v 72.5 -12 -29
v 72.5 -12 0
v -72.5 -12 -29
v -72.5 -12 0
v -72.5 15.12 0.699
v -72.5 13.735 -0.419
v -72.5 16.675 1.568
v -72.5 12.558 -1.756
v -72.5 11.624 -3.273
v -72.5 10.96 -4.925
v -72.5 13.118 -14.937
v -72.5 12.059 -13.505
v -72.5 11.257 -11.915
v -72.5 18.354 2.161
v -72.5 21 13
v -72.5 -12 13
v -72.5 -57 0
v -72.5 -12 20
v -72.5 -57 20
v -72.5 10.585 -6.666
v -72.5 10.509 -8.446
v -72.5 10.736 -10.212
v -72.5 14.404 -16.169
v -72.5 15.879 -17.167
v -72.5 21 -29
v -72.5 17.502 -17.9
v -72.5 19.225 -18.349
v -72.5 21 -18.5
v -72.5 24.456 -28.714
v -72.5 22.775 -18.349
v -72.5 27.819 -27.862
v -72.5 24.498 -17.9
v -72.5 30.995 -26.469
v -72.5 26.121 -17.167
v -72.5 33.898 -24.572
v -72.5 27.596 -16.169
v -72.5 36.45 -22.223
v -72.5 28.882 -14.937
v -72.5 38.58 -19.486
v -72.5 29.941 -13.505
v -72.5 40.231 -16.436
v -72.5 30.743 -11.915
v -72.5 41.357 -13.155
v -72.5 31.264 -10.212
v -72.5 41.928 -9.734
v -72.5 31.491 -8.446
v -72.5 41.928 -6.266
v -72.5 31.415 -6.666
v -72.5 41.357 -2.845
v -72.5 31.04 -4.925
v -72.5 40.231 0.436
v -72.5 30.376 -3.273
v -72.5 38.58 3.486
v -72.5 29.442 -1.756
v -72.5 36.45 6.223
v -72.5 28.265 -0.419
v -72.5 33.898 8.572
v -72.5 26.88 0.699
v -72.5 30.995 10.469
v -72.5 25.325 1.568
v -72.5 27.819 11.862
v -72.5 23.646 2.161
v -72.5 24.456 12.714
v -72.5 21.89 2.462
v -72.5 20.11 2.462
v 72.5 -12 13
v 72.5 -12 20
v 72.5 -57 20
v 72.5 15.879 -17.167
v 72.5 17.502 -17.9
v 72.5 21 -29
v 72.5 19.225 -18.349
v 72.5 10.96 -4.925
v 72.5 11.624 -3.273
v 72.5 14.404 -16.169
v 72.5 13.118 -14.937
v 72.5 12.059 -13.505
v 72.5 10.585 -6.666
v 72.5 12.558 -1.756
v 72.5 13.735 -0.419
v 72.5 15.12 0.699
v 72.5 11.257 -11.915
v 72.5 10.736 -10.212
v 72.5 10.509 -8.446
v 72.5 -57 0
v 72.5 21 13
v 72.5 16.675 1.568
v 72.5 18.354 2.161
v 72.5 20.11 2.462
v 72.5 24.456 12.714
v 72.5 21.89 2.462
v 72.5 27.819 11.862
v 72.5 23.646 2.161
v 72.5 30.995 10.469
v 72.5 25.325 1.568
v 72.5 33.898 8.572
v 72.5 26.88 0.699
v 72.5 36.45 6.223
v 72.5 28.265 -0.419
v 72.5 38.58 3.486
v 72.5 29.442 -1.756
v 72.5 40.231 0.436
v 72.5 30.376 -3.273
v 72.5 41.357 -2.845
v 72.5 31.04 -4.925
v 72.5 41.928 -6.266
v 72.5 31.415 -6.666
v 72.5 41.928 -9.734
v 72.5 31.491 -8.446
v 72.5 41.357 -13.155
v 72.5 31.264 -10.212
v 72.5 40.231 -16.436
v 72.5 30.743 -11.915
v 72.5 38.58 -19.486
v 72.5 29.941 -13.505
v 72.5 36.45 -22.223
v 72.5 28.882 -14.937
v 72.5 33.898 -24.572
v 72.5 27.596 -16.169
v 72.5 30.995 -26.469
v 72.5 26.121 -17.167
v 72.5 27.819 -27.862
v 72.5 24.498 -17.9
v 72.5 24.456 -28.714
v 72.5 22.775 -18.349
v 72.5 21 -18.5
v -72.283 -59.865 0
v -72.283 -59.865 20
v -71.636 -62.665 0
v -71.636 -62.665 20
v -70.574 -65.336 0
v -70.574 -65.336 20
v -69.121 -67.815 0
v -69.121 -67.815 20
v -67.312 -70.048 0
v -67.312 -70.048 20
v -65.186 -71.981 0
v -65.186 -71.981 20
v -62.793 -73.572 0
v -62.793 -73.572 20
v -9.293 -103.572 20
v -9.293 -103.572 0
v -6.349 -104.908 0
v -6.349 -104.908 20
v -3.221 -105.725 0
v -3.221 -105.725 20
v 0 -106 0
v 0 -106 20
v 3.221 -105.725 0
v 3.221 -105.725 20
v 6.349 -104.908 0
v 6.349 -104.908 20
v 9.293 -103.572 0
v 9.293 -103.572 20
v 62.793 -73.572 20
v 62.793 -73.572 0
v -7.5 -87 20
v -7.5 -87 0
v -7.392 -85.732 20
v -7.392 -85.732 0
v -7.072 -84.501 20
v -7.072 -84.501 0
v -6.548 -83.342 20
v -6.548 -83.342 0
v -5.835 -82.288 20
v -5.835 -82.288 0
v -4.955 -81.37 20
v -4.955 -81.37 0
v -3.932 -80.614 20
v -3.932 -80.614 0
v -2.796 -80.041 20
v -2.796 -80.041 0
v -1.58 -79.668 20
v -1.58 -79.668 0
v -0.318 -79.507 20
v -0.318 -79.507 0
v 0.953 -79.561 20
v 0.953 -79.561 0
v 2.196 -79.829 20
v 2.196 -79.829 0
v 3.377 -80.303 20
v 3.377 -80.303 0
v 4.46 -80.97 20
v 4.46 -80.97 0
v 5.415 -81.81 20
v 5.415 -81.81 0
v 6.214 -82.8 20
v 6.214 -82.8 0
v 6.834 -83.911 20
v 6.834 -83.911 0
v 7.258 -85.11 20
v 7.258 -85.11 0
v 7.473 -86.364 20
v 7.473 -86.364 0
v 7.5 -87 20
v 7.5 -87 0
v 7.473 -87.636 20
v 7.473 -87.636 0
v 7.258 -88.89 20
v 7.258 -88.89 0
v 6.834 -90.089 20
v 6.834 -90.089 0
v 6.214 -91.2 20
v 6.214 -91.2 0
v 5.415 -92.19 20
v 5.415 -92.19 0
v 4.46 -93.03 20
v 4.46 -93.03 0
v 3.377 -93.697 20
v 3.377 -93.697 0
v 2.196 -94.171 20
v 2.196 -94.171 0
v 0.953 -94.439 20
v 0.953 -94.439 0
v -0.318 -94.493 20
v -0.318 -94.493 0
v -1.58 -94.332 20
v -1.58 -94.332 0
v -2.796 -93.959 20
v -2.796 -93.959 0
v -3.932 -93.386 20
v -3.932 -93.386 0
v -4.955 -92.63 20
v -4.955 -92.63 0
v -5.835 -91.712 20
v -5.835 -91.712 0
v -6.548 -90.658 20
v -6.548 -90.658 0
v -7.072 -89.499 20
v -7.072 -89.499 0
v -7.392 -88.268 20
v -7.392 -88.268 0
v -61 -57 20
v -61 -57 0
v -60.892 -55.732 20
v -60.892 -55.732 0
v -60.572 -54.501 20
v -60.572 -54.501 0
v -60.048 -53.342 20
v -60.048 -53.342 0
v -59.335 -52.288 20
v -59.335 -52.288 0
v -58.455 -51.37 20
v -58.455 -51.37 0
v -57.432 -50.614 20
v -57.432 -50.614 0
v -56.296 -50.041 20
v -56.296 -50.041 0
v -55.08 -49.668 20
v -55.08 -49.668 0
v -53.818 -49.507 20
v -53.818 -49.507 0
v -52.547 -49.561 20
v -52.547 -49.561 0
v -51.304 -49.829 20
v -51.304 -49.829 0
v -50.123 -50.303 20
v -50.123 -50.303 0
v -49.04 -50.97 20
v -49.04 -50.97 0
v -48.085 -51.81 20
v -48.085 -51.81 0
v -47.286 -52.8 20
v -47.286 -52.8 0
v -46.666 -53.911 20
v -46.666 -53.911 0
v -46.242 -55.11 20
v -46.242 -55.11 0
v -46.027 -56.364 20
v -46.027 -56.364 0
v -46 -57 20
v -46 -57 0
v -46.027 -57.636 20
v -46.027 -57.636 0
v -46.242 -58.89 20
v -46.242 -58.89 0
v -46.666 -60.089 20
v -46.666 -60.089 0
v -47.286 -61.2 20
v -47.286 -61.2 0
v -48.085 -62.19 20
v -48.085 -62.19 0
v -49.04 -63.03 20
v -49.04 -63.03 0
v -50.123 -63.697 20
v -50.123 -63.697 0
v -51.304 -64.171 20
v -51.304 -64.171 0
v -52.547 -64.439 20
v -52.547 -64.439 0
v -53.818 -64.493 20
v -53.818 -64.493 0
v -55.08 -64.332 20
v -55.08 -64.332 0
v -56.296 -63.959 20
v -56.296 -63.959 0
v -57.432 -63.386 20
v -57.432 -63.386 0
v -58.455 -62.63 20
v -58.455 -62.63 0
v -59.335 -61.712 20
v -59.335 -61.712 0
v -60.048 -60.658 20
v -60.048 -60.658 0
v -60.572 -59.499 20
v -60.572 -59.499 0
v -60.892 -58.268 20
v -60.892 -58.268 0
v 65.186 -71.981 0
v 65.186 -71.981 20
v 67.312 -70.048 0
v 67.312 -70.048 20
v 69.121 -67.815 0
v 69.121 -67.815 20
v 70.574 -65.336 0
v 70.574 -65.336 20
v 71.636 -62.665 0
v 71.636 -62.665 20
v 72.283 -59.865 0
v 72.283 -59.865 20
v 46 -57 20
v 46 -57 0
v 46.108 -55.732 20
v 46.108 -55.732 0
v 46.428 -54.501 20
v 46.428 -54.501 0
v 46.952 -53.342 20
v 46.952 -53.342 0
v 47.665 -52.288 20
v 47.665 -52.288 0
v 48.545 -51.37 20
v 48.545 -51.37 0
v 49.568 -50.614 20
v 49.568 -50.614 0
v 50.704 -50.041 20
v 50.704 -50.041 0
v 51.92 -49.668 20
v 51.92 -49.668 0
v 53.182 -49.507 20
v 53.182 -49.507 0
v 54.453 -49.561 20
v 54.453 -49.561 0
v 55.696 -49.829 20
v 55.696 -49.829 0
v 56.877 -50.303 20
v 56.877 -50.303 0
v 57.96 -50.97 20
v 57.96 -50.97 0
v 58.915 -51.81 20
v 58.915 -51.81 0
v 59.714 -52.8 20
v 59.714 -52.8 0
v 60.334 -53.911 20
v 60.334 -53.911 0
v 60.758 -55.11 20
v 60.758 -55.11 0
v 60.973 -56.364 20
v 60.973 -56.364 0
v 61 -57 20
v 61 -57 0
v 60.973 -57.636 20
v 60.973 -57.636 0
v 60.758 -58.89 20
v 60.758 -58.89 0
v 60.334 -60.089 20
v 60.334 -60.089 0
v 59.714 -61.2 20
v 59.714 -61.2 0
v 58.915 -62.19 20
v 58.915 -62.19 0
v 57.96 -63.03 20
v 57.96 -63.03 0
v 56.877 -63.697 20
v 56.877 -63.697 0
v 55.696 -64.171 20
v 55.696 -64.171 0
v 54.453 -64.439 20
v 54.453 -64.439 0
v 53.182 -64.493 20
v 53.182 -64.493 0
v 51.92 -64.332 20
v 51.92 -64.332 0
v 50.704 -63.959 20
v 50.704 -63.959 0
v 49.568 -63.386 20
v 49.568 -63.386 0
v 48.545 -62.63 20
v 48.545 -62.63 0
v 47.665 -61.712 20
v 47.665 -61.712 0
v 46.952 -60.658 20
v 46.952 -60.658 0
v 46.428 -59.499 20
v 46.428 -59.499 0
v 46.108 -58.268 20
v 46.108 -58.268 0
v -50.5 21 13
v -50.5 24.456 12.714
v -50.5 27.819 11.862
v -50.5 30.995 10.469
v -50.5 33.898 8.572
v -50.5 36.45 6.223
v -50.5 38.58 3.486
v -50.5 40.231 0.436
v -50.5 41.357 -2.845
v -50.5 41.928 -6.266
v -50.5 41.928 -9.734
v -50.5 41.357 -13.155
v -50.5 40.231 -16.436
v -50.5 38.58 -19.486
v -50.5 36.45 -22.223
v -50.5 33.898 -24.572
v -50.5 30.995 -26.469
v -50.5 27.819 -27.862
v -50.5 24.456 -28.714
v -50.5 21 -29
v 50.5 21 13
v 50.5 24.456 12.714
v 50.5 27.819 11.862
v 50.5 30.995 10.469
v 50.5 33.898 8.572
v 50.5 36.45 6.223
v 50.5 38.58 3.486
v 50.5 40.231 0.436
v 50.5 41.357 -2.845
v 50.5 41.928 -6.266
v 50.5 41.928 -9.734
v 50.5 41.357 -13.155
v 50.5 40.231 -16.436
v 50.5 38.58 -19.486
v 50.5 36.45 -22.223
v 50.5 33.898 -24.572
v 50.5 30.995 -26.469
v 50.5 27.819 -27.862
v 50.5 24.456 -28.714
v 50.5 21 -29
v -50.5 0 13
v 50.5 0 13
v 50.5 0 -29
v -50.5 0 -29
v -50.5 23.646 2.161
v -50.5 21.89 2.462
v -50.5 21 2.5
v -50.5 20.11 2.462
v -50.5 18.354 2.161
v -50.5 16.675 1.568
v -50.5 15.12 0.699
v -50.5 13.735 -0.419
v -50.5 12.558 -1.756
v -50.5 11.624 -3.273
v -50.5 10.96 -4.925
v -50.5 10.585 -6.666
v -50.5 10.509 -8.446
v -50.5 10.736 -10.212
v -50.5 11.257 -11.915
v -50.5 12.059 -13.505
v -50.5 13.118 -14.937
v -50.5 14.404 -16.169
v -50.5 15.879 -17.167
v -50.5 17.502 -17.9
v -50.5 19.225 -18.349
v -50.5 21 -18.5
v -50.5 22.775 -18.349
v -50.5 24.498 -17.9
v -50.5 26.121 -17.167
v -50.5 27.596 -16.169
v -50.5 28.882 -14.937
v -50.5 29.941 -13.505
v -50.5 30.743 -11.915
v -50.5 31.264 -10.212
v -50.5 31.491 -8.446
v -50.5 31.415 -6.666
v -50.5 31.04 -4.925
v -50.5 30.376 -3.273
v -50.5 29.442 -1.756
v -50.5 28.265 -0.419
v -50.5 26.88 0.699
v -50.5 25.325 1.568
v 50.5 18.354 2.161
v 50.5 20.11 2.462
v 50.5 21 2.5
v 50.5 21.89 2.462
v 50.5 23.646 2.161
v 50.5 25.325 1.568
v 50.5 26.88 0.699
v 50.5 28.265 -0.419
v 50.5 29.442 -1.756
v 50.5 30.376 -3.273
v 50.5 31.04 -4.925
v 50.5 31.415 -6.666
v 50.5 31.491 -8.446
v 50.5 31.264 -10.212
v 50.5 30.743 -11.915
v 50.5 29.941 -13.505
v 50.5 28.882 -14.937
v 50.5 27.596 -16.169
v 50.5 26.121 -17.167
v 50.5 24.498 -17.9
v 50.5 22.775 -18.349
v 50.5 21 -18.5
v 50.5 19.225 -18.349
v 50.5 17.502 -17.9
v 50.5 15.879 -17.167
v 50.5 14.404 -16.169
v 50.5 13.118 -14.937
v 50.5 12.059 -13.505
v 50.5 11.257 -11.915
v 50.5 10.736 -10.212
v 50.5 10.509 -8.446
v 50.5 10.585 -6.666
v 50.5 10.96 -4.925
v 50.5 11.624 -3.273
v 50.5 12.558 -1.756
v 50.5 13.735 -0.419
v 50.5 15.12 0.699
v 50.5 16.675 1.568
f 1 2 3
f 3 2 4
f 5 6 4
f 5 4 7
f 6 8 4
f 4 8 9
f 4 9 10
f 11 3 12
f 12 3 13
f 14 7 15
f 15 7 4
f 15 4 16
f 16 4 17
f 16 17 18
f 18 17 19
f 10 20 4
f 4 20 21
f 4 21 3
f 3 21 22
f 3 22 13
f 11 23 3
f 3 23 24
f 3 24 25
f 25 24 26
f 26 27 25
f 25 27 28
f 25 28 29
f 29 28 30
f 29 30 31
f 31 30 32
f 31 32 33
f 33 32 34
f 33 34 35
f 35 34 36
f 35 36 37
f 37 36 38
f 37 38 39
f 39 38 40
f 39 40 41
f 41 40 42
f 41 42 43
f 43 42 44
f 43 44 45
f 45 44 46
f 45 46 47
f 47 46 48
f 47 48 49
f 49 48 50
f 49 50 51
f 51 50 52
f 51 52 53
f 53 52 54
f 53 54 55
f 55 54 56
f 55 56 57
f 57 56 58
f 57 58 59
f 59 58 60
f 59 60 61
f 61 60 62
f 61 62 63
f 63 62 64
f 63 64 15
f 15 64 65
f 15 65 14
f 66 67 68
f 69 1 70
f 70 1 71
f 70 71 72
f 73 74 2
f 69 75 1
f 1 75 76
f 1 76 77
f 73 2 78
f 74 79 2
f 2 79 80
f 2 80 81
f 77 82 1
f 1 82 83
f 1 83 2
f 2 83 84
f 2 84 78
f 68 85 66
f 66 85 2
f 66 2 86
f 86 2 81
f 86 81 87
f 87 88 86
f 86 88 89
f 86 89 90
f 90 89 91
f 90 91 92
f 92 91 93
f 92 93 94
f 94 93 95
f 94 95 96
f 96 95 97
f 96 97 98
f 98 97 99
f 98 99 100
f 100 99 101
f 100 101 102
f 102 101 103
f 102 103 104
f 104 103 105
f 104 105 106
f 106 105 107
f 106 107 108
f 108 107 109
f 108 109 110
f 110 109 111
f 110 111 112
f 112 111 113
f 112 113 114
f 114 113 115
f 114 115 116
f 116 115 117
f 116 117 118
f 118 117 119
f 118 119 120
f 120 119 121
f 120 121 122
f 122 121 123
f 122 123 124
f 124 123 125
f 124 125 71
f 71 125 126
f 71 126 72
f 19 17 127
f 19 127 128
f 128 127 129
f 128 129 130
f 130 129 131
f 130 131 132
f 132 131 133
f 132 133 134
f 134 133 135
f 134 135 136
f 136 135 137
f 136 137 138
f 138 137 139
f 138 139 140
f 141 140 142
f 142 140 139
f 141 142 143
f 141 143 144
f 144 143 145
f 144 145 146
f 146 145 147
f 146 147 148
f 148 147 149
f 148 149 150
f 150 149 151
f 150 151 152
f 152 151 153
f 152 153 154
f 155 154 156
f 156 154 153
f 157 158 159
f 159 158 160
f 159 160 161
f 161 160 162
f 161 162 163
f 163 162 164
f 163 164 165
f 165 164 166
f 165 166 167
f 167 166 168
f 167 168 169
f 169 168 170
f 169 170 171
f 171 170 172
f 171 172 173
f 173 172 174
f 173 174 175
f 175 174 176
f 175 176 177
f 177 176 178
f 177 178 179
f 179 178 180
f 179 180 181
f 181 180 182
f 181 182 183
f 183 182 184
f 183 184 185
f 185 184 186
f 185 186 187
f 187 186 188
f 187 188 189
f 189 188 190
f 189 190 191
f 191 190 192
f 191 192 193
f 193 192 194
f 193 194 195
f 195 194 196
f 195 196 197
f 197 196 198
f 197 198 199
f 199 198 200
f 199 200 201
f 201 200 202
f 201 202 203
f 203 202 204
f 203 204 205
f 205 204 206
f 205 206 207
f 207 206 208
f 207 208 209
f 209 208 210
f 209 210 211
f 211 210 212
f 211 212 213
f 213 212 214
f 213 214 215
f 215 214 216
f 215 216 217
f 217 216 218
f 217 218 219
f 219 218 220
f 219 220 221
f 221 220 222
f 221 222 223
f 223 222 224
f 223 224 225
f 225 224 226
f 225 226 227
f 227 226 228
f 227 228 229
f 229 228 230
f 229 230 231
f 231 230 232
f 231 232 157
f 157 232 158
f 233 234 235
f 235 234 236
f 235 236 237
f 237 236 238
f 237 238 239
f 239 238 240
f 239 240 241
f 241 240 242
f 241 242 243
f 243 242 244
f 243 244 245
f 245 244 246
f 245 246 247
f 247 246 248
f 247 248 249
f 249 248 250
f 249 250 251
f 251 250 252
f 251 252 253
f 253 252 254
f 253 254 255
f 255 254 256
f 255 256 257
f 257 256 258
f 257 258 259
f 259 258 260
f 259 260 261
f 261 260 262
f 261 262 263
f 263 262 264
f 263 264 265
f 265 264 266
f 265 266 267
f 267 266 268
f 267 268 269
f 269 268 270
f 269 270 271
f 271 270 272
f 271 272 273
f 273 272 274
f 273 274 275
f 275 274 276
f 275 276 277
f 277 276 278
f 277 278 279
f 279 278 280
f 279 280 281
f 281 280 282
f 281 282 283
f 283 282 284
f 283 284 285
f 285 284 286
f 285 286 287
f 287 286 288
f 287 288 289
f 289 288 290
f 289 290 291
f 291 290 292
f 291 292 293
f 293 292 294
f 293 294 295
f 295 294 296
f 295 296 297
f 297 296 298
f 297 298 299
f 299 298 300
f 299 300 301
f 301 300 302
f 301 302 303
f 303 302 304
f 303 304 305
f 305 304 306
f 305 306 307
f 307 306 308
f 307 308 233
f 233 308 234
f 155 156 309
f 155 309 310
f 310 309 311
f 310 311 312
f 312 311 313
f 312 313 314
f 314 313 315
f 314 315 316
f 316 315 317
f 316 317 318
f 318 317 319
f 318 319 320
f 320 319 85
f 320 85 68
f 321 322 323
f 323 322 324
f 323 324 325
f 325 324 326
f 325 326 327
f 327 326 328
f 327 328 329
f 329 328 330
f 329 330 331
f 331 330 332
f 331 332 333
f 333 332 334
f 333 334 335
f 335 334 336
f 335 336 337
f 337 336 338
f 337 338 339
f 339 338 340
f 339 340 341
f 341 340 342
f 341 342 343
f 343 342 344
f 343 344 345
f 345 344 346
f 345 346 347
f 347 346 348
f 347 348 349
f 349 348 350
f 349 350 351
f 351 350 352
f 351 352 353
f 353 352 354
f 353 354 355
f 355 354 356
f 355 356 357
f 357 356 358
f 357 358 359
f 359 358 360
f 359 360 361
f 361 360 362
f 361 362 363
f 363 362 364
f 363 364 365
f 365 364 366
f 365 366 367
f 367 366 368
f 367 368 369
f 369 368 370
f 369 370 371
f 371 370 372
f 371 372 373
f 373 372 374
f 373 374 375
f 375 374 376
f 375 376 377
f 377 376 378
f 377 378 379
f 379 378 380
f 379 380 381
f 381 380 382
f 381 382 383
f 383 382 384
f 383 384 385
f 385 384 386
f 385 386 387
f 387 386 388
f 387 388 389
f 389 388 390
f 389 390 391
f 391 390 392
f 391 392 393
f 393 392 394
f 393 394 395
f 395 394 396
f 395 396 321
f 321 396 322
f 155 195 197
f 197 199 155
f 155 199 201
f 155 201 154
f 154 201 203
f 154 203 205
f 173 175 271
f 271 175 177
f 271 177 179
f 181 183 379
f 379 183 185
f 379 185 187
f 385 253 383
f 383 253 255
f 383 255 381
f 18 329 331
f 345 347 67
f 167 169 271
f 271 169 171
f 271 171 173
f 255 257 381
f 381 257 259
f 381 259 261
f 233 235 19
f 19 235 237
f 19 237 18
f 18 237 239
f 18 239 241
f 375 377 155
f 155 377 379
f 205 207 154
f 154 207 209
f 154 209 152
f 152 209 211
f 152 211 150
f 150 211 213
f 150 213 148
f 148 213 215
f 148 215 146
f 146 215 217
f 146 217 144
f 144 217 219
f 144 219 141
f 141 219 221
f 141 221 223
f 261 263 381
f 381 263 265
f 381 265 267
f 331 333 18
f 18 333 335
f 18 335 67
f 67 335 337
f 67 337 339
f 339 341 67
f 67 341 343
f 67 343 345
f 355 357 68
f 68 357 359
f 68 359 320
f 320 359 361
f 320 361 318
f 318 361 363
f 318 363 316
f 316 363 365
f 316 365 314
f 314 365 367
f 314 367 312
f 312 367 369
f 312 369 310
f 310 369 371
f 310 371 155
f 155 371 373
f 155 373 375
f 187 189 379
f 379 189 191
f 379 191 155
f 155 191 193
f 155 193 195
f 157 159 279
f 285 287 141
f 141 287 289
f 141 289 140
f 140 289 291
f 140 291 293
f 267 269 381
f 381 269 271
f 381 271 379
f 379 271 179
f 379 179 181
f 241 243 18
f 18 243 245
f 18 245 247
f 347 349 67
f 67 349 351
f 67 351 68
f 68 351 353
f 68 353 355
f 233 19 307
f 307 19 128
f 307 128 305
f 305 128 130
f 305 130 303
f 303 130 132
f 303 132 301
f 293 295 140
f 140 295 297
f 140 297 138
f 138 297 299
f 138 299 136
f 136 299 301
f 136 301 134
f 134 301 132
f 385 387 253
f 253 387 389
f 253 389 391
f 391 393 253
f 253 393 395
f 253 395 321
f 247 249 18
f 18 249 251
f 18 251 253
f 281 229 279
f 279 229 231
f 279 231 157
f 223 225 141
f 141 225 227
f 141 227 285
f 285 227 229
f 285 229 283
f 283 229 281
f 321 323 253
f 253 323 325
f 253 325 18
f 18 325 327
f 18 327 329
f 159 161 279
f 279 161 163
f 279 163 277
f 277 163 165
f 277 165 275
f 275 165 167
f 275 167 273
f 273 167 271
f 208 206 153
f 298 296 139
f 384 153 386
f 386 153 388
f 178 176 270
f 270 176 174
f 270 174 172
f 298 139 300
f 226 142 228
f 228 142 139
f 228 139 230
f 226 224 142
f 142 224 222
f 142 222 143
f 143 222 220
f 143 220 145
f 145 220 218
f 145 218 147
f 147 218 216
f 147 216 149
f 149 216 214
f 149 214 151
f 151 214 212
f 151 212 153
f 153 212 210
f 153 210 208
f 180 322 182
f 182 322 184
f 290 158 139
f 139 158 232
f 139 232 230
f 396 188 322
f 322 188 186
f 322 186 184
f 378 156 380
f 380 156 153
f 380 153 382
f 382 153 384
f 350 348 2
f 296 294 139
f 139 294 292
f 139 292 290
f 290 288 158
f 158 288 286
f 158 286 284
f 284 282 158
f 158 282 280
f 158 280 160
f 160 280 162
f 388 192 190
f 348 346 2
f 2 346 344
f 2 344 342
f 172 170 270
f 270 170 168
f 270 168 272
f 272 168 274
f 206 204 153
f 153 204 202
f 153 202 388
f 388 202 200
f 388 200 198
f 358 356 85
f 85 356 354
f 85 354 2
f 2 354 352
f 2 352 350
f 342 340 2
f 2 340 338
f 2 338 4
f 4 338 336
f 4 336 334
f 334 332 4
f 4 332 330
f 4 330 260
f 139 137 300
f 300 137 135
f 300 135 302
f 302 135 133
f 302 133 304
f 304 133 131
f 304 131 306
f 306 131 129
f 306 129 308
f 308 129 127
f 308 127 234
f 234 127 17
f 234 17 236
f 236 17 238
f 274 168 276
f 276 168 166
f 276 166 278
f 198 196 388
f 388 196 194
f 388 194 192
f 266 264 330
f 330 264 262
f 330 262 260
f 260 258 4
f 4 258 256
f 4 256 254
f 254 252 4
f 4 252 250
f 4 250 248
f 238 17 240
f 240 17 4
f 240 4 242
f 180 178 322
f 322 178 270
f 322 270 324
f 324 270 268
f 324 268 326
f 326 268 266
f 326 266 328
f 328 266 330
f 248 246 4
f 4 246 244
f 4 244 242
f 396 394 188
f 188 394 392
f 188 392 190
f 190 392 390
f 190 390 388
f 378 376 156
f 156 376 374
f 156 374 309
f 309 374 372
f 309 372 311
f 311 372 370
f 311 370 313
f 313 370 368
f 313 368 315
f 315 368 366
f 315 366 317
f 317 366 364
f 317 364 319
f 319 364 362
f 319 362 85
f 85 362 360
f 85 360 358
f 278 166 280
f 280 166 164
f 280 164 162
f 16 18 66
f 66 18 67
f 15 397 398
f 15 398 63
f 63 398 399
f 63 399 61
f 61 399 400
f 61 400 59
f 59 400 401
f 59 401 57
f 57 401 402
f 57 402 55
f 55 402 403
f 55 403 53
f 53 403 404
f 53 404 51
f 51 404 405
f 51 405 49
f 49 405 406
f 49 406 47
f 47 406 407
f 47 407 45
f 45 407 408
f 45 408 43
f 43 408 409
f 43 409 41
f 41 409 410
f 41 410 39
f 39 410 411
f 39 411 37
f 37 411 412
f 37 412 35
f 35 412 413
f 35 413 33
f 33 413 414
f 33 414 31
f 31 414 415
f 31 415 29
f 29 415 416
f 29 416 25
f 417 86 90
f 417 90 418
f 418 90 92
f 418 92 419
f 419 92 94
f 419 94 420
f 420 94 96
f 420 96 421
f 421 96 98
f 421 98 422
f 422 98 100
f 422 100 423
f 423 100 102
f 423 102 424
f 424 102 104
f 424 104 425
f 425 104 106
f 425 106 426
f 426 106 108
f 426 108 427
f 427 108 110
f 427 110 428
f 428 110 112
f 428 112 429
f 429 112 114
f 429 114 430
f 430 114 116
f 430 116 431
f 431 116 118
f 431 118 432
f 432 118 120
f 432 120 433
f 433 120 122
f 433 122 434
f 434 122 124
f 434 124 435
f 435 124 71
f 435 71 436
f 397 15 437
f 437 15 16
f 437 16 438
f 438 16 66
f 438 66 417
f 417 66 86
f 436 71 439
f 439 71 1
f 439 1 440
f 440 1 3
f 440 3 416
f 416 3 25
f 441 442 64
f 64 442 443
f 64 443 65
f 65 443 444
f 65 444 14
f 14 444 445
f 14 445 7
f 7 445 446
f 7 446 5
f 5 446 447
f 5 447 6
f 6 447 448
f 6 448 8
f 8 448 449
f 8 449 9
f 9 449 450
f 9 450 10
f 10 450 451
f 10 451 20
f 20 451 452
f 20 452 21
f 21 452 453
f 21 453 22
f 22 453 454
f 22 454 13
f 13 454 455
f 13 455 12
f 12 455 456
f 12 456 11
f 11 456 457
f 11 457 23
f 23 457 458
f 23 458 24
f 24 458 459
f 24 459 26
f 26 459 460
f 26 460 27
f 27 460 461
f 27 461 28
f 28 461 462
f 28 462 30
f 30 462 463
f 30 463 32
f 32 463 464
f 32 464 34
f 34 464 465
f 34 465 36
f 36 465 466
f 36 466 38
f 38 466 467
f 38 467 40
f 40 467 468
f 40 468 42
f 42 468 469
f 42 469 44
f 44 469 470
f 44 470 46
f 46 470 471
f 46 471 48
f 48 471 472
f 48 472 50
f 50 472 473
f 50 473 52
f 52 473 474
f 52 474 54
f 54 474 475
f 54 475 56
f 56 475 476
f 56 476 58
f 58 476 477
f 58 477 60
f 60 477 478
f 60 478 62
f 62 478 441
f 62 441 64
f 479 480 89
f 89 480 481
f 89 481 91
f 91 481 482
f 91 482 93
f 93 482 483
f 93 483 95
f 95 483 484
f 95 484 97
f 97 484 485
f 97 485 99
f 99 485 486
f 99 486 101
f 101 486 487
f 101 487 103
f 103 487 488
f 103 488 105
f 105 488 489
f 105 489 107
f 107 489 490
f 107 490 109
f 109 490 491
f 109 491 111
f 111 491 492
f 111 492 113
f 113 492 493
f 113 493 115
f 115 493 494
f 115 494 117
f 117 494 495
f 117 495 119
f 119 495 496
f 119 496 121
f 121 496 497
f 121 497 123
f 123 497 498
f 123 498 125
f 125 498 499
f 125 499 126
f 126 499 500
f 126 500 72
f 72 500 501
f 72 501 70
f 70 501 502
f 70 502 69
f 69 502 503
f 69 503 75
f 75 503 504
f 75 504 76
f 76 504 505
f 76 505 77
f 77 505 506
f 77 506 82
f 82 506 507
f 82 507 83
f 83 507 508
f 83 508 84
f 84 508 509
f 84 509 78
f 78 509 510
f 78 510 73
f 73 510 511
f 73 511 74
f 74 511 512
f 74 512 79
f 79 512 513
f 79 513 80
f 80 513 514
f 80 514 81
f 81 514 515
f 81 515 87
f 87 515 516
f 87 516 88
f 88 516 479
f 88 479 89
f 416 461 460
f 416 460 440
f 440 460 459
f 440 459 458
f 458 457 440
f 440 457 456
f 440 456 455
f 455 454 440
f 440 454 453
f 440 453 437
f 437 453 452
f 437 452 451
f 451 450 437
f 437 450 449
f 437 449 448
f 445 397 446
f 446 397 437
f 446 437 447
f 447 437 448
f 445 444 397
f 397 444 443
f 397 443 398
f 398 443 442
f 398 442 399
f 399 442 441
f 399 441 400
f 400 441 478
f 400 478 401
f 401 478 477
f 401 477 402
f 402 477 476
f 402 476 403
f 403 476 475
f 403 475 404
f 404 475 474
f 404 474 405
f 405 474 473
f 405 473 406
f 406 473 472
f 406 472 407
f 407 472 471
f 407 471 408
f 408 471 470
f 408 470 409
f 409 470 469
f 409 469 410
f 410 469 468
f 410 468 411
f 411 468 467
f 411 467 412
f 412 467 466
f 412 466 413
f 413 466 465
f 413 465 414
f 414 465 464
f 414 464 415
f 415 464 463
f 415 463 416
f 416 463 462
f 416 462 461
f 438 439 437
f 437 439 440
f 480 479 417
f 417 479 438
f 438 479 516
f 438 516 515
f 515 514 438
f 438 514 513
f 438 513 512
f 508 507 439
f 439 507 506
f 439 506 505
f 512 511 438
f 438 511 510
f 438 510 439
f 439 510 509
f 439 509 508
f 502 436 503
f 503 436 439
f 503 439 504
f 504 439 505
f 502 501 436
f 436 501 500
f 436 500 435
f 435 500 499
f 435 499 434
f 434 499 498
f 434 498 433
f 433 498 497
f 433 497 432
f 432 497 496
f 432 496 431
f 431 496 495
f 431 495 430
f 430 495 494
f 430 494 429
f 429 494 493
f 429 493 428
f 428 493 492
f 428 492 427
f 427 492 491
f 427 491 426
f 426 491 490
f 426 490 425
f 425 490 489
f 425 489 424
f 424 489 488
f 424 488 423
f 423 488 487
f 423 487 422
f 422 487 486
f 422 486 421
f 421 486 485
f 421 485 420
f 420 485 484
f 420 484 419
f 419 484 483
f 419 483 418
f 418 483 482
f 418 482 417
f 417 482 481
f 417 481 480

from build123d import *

# Parameters (mm, degrees)
SKETCH1_R           = 7.5
BOSS_EXTRUDE1_DEPTH = 20
SKETCH1_4_W         = 22
SKETCH1_4_H         = 54
BOSS_EXTRUDE3_DEPTH = 30
CUT_EXTRUDE6_REACH  = 184.102
SKETCH5_R           = 10.5


with BuildPart() as part:
    # Sketch1 → Boss-Extrude1 (new body)
    with BuildSketch(Plane.XY):
        with BuildLine():
            Line((72.5, -57), (72.5, -12))
            Line((72.5, -12), (-72.5, -12))
            Line((-72.5, -12), (-72.5, -57))
            ThreePointArc((-72.5, -57), (-69.894587599, -66.602994193), (-62.792895003, -73.572329422))
            Line((-62.792895003, -73.572329422), (-9.292895003, -103.572329422))
            ThreePointArc((-9.292895003, -103.572329422), (0, -106), (9.292895003, -103.572329422))
            Line((9.292895003, -103.572329422), (62.792895003, -73.572329422))
            ThreePointArc((62.792895003, -73.572329422), (69.894587599, -66.602994193), (72.5, -57))
        make_face()
        with Locations((-53.5, -57)):
            Circle(SKETCH1_R, mode=Mode.SUBTRACT)
        with Locations((0, -87)):
            Circle(SKETCH1_R, mode=Mode.SUBTRACT)
        with Locations((53.5, -57)):
            Circle(SKETCH1_R, mode=Mode.SUBTRACT)
    extrude(amount=BOSS_EXTRUDE1_DEPTH)

    # Sketch1<4> → Boss-Extrude3 (add, symmetric)
    with BuildSketch(Plane.XY):
        with Locations((-61.5, 27)):
            Rectangle(SKETCH1_4_W, SKETCH1_4_H)
        with Locations((61.5, 27)):
            Rectangle(SKETCH1_4_W, SKETCH1_4_H)
        Polygon((-72.5, -12), (0, -12), (0, 0), (-50.5, 0), (-72.5, 0), align=None)
        Polygon((0, 0), (0, -12), (72.5, -12), (72.5, 0), (50.5, 0), align=None)
    extrude(amount=BOSS_EXTRUDE3_DEPTH, both=True)

    # Cut-Extrude6: up to this face of the body (flat: up to its plane)
    cut_extrude6_end = Plane(part.part.faces().sort_by_distance((-72.5, 10.722222222, 1.851851852))[0])
    # Sketch5 → Cut-Extrude6 (cut, up to the picked face)
    with BuildSketch(Plane(origin=(72.5, 0, 0), x_dir=(0, 0, -1), z_dir=(1, 0, 0)), mode=Mode.PRIVATE) as cut_extrude6_sk1:
        with BuildLine():
            Line((-13, -12), (-13, 21))
            ThreePointArc((-13, 21), (8, 42), (29, 21))
            Line((29, 21), (29, -12))
            Line((29, -12), (30, -12))
            Line((30, -12), (30, 54))
            Line((30, 54), (-30, 54))
            Line((-30, 54), (-30, -12))
            Line((-30, -12), (-20, -12))
            Line((-20, -12), (-13, -12))
        make_face()
    cut_extrude6_tool1 = split(extrude(cut_extrude6_sk1.sketch, amount=-CUT_EXTRUDE6_REACH, mode=Mode.PRIVATE), bisect_by=cut_extrude6_end, keep=Keep.BOTH, mode=Mode.PRIVATE)
    # Sketch5 → Cut-Extrude6 (cut, up to the picked face)
    with BuildSketch(Plane(origin=(72.5, 0, 0), x_dir=(0, 0, -1), z_dir=(1, 0, 0)), mode=Mode.PRIVATE) as cut_extrude6_sk2:
        with Locations((8, 21)):
            Circle(SKETCH5_R)
    cut_extrude6_tool2 = split(extrude(cut_extrude6_sk2.sketch, amount=-CUT_EXTRUDE6_REACH, mode=Mode.PRIVATE), bisect_by=cut_extrude6_end, keep=Keep.BOTH, mode=Mode.PRIVATE)
    add(cut_extrude6_tool1.solids().sort_by(Axis((72.5, 4.5, 13.891964), (-1, 0, 0)))[0], mode=Mode.SUBTRACT)
    add(cut_extrude6_tool2.solids().sort_by(Axis((72.5, 21, -8), (-1, 0, 0)))[0], mode=Mode.SUBTRACT)


solid = part.part
